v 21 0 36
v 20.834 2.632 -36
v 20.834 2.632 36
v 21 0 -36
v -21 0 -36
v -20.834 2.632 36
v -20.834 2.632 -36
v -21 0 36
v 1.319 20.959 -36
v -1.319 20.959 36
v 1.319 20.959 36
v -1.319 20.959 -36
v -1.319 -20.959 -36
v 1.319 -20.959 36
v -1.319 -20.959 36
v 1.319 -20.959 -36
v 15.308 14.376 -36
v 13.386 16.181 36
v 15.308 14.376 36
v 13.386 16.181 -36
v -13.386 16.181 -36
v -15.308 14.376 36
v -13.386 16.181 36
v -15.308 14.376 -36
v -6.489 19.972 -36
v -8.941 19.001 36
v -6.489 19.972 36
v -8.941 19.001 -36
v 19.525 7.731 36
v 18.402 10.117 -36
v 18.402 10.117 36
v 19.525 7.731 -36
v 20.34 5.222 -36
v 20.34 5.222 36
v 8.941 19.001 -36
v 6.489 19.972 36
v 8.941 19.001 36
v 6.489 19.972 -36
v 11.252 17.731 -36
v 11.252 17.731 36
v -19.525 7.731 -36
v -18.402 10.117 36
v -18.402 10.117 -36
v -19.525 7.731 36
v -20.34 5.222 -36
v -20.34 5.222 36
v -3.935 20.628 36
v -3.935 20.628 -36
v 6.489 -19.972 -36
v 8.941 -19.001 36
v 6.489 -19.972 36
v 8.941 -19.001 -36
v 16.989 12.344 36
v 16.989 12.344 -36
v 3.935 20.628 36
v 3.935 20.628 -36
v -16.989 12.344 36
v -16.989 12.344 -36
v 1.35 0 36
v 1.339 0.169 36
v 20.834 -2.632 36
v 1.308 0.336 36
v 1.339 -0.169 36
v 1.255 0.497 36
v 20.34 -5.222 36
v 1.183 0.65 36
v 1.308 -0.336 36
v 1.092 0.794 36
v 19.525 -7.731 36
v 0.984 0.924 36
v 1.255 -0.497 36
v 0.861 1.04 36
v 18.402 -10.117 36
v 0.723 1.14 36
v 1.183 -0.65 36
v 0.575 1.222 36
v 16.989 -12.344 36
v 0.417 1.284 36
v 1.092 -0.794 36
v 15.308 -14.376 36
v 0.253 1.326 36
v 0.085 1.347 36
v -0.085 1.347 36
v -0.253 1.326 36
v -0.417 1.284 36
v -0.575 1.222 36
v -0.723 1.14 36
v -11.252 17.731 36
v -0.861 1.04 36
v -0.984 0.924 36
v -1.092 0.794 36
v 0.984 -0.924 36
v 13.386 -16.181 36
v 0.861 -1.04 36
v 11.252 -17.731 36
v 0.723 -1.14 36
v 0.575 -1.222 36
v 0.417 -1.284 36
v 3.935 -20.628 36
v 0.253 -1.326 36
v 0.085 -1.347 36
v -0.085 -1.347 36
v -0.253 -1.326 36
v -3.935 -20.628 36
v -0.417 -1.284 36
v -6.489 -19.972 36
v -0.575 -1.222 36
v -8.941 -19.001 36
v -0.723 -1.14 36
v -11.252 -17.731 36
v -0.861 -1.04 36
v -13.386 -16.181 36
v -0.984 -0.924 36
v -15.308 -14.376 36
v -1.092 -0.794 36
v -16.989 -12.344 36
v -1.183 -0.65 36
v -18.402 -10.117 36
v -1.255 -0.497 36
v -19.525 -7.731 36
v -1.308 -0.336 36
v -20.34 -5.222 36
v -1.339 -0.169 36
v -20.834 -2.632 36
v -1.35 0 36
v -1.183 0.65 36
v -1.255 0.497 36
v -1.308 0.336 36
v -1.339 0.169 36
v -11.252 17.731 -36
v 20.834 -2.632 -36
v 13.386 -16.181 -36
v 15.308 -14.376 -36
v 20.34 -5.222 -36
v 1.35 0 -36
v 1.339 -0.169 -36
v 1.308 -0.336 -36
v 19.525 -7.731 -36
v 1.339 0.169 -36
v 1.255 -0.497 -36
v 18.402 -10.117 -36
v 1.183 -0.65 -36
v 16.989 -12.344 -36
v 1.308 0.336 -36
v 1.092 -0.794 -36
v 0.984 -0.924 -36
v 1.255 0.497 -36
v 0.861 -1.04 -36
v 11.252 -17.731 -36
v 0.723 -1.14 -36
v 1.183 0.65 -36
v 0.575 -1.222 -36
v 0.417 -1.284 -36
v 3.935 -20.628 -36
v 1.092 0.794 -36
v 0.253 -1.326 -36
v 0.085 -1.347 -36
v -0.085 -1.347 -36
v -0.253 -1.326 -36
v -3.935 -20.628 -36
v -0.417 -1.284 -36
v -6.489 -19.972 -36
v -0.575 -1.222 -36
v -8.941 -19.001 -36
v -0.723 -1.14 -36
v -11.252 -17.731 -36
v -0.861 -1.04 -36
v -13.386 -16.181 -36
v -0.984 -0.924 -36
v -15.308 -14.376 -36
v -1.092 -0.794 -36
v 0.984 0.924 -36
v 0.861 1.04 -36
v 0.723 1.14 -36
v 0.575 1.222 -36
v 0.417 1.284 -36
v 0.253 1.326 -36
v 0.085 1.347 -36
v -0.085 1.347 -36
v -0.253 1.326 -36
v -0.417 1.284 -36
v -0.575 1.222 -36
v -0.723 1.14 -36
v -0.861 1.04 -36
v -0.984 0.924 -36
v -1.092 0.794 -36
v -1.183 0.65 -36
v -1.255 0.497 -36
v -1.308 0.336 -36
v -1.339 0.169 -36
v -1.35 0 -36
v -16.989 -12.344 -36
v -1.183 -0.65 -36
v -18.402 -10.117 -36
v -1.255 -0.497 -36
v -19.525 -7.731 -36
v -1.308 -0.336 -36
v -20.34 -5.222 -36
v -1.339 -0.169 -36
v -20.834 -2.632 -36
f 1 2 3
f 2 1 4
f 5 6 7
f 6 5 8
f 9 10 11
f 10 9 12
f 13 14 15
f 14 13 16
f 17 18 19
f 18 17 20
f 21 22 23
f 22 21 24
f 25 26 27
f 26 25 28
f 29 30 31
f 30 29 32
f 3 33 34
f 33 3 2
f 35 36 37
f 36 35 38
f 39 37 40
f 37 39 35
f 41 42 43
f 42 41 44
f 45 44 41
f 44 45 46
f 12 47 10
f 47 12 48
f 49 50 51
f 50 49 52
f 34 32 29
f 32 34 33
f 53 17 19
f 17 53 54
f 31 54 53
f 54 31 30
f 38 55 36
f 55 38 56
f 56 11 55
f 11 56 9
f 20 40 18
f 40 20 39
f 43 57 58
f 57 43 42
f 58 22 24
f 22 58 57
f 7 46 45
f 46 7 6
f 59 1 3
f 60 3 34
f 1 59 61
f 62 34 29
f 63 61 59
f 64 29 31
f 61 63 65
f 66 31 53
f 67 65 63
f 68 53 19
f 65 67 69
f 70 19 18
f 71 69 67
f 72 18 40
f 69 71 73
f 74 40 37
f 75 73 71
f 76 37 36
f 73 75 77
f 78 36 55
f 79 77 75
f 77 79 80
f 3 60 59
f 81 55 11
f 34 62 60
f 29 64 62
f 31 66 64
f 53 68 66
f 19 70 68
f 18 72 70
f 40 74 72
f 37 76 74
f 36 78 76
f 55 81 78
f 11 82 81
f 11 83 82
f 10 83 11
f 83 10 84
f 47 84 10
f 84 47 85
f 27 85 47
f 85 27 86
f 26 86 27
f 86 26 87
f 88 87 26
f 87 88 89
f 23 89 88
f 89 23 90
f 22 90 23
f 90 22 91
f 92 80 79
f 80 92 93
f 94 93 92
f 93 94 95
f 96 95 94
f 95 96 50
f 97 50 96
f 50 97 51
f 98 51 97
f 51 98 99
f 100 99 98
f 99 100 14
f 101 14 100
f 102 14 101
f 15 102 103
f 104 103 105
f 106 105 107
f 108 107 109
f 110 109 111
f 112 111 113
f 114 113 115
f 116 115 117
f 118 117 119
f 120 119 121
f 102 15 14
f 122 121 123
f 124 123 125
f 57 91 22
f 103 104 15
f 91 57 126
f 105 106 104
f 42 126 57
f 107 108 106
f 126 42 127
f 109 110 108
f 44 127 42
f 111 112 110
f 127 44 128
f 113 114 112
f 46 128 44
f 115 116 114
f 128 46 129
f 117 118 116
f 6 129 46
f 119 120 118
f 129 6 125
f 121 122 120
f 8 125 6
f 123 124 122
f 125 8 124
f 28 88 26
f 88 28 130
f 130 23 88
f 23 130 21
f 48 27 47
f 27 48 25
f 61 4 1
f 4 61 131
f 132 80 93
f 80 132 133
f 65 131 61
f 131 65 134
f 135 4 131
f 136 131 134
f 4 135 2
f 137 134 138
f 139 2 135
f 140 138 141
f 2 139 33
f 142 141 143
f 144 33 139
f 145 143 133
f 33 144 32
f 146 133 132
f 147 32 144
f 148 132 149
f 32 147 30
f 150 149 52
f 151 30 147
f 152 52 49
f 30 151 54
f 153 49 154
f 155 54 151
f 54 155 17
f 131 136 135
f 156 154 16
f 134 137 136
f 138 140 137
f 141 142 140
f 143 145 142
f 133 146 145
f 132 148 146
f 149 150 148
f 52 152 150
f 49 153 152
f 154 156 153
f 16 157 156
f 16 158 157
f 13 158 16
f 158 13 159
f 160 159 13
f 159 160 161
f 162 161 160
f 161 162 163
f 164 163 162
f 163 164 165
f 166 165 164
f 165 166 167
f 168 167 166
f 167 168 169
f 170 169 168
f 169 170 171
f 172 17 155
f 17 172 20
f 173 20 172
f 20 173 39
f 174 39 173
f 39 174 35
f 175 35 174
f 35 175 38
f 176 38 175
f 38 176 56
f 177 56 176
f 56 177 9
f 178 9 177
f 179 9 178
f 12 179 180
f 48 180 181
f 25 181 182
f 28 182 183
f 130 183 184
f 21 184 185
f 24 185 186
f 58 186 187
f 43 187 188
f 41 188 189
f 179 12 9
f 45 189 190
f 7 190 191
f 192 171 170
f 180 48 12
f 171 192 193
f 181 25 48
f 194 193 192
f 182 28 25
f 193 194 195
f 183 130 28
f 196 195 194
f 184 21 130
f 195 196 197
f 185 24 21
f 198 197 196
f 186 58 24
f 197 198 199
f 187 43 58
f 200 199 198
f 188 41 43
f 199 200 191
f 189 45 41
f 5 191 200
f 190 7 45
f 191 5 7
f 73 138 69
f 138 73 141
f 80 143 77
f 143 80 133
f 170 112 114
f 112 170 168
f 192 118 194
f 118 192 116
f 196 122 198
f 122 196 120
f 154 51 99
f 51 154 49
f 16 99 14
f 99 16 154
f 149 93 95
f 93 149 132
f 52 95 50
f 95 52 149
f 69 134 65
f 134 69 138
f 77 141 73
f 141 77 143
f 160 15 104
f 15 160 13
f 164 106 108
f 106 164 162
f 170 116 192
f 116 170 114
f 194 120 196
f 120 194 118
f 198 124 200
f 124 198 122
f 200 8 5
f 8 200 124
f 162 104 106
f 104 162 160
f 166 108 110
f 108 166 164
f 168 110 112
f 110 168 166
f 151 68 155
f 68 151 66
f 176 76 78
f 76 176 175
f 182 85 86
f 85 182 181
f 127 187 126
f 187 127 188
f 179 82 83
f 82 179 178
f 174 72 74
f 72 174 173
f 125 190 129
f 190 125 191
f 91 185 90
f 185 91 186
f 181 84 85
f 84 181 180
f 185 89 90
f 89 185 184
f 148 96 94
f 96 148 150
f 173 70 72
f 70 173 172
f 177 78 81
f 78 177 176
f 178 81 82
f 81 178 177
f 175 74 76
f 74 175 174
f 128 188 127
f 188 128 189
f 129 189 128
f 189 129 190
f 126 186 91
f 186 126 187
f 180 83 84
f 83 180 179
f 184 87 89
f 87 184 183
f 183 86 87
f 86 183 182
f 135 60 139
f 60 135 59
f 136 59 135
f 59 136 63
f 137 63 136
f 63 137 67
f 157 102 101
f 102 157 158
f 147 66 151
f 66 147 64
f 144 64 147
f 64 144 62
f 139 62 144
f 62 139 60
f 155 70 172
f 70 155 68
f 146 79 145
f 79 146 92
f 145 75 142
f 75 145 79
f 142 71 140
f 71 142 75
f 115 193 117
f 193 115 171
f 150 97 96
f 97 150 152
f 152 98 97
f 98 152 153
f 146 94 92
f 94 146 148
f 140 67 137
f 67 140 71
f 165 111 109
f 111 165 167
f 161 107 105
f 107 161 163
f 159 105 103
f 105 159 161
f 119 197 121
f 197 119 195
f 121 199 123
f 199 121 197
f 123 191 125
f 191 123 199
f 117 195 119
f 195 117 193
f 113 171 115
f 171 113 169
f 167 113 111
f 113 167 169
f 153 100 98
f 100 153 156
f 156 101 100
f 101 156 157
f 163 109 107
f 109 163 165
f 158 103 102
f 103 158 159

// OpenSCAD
$fn = 50;


difference() {
	union() {
		translate(v = [0, 0, -36.0000000000]) {
			cylinder(h = 72, r = 21.0000000000);
		}
	}
	union() {
		translate(v = [0, 0, -100.0000000000]) {
			cylinder(h = 200, r = 1.3500000000);
		}
	}
}
